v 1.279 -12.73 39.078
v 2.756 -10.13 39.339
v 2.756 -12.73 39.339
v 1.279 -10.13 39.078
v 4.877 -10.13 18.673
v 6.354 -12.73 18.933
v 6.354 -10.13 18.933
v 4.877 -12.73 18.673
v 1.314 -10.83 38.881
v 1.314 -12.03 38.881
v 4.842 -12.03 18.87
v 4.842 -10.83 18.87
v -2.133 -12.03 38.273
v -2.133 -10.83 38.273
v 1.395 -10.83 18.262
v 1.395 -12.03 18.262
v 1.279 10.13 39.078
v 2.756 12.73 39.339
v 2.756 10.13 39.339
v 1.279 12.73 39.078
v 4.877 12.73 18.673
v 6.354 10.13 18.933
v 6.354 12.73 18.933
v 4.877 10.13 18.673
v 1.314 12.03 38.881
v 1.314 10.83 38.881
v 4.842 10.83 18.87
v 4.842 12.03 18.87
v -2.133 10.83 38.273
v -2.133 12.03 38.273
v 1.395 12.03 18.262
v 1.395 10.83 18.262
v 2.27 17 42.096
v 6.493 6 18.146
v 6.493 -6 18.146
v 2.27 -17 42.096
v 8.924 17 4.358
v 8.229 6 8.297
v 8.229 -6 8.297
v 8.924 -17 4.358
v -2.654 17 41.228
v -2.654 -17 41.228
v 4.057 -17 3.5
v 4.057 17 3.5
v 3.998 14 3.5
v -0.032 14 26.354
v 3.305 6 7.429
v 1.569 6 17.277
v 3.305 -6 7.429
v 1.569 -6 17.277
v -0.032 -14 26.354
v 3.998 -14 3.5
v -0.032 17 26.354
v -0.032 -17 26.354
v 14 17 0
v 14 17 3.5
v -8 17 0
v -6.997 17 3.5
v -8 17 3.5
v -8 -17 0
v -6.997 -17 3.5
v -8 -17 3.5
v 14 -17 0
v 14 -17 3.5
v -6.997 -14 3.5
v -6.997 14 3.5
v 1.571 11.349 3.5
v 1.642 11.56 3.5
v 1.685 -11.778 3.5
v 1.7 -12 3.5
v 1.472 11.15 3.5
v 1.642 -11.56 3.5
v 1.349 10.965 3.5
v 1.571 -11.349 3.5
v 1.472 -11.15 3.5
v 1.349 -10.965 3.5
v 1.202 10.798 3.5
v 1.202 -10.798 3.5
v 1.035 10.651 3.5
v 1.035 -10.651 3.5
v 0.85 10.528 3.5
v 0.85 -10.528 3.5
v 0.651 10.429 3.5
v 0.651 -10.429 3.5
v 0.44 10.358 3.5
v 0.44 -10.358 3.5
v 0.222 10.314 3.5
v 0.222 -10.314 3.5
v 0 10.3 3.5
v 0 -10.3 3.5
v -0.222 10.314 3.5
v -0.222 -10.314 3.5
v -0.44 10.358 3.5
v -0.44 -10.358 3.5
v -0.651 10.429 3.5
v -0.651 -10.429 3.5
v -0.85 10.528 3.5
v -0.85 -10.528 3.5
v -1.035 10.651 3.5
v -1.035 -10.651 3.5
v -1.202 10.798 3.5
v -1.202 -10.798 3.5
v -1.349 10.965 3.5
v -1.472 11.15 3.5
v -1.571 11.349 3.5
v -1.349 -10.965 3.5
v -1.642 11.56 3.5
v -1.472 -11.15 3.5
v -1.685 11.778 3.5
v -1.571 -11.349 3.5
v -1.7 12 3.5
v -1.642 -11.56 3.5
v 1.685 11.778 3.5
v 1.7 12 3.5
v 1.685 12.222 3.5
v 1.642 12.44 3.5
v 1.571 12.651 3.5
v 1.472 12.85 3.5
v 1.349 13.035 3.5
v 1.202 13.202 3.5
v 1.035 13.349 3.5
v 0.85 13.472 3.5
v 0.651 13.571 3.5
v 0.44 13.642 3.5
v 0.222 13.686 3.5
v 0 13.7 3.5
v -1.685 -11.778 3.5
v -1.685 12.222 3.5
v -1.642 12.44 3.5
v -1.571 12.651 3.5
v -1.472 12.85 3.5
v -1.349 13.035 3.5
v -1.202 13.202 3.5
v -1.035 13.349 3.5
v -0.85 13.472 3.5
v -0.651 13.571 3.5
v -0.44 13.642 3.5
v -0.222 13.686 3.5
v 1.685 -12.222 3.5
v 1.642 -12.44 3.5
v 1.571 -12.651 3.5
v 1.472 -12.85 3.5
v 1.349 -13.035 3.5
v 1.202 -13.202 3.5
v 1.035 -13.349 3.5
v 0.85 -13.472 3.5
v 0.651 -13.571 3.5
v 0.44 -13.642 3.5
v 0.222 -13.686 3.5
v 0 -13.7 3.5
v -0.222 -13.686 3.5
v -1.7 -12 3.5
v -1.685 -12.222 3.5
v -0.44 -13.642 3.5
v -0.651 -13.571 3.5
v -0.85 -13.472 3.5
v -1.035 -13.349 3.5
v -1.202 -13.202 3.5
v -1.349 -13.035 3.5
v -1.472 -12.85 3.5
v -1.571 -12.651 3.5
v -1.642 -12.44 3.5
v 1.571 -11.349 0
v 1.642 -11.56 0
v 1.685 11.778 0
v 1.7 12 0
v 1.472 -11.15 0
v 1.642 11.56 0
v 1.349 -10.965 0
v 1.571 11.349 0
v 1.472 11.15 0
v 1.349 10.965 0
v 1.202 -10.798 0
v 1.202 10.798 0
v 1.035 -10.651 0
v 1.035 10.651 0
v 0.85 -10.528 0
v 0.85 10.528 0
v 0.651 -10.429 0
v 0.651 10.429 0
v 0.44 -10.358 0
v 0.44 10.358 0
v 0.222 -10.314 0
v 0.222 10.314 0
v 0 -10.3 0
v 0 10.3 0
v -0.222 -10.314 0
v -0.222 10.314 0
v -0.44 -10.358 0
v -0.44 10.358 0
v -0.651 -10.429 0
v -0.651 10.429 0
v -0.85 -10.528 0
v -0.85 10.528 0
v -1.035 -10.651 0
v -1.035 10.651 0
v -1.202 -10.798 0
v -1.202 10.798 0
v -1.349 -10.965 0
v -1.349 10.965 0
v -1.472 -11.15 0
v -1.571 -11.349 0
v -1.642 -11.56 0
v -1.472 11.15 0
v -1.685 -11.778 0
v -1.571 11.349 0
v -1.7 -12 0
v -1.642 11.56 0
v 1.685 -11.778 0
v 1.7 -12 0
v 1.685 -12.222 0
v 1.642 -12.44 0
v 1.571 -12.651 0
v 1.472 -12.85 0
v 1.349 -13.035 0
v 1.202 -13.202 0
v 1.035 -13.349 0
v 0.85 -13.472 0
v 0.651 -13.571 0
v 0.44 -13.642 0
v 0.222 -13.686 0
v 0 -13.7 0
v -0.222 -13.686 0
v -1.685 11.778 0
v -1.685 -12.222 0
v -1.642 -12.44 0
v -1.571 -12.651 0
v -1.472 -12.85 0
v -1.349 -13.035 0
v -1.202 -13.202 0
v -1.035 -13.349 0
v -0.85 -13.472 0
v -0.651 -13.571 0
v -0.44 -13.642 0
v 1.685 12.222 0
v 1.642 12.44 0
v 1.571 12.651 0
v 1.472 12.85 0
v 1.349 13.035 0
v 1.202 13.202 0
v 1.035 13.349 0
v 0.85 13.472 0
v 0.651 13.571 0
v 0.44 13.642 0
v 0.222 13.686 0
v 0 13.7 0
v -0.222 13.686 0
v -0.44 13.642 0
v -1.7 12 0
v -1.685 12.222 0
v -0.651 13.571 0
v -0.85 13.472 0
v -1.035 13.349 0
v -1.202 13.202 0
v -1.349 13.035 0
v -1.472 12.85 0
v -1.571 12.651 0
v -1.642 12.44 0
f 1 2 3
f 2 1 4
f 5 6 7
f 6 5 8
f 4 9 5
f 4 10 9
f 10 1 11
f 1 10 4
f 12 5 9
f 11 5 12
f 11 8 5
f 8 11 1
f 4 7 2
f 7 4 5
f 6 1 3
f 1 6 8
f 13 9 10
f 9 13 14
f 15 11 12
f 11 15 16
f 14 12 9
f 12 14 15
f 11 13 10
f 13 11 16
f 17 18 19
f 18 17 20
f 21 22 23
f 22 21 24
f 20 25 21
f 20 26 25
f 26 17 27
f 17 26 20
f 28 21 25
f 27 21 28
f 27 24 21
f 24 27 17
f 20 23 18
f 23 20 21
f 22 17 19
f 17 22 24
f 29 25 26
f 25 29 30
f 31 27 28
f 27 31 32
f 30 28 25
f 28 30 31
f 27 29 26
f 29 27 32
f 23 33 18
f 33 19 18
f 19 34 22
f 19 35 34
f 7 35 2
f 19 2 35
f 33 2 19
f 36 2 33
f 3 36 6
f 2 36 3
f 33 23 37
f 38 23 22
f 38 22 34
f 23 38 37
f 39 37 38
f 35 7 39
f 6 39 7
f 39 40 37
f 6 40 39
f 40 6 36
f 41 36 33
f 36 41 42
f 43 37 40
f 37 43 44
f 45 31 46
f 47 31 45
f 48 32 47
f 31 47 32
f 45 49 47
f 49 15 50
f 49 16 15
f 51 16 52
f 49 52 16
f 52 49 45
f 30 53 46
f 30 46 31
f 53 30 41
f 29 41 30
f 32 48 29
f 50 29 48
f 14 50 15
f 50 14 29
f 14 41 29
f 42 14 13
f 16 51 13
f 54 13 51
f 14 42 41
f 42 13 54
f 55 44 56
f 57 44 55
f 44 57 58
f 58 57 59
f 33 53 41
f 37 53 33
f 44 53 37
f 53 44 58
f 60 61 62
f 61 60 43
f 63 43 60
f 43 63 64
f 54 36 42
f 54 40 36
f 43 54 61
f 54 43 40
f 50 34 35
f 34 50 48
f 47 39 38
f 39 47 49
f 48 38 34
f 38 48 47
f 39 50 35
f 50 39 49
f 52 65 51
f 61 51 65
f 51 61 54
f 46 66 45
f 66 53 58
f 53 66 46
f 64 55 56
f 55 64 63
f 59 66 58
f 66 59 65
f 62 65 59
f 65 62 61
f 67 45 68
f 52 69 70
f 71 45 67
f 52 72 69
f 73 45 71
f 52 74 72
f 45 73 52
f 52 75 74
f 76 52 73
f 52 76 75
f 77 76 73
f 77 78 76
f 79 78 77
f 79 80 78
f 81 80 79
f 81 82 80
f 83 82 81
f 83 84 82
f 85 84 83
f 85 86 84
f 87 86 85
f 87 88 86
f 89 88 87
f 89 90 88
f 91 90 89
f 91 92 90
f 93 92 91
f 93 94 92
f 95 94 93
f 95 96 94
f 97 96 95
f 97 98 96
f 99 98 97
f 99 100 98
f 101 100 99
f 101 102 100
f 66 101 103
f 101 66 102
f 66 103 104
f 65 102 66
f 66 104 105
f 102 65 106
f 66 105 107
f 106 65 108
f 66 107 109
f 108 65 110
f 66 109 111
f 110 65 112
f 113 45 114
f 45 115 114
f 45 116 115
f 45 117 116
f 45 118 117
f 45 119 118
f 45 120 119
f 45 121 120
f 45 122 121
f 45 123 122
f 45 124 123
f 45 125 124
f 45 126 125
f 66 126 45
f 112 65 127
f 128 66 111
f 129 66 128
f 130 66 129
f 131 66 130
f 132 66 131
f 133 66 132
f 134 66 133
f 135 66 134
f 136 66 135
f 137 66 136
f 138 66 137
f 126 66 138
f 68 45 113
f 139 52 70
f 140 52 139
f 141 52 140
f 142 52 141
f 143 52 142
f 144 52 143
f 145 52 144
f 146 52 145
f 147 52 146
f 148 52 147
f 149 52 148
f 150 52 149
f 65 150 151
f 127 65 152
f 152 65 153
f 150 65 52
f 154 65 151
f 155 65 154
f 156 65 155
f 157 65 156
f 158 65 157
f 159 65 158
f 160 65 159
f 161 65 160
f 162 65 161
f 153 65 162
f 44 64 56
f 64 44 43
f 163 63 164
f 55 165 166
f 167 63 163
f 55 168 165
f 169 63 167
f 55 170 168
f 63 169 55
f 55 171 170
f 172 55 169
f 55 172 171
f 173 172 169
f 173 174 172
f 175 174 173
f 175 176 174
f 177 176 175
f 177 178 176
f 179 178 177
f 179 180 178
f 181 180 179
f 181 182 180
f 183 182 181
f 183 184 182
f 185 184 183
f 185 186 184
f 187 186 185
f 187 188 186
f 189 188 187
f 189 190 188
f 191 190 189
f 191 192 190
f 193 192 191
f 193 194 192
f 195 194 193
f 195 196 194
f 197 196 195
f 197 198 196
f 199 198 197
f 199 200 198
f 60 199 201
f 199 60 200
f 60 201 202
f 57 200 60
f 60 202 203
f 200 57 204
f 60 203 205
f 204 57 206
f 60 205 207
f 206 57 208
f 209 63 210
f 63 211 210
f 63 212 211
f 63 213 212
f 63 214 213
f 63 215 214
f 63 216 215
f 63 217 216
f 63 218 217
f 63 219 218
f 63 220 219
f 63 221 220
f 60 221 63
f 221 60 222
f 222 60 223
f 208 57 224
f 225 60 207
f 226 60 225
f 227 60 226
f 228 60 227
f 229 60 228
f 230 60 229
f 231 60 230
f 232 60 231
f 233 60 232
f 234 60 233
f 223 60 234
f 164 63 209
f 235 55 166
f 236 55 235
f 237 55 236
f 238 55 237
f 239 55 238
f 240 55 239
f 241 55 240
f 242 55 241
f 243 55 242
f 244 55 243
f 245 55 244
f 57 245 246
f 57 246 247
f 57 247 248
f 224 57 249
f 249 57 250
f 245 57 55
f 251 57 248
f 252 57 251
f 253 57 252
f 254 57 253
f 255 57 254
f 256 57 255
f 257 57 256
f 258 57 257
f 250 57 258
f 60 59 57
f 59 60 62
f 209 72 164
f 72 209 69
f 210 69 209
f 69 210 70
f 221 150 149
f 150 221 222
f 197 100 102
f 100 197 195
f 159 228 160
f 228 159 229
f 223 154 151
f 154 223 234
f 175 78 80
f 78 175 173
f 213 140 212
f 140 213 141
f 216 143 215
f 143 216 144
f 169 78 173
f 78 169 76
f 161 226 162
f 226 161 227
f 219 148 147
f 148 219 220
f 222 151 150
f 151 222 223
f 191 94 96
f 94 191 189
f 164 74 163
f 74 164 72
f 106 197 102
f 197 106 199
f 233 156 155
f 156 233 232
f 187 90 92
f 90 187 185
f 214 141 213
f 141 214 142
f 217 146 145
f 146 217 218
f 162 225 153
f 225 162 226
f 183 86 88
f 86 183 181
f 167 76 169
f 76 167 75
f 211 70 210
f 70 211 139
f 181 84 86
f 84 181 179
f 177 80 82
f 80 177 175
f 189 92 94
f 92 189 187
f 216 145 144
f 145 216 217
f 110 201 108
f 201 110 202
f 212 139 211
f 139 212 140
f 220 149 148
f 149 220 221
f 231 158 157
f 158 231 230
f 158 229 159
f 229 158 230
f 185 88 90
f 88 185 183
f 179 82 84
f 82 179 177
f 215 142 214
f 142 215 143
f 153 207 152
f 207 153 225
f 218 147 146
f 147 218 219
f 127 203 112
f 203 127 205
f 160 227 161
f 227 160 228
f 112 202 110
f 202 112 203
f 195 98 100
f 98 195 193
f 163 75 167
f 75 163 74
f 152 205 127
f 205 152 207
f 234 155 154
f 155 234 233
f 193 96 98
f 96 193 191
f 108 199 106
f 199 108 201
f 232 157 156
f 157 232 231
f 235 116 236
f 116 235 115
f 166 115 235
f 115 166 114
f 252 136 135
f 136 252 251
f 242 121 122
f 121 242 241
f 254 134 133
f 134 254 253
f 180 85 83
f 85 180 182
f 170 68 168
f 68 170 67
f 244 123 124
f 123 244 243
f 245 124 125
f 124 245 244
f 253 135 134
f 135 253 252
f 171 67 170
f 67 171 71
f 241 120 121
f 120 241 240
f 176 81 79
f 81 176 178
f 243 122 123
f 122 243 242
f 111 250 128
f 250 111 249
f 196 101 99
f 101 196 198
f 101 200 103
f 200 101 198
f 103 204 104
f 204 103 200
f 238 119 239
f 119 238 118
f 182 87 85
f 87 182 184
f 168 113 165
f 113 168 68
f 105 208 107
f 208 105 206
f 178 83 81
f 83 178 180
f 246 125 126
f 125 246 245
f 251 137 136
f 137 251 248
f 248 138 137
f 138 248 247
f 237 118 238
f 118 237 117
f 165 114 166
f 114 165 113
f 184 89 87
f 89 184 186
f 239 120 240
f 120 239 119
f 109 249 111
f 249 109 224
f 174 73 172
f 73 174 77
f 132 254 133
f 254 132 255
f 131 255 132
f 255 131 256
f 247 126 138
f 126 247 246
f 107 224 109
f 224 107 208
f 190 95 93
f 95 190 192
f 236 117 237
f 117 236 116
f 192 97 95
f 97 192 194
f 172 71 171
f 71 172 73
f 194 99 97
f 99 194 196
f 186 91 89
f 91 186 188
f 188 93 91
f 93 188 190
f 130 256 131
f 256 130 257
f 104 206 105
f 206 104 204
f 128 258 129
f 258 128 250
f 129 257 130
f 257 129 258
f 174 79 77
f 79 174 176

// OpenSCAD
// file: lib/telebot_common.scad
// telebot_common.scad: shared dimensions and modules for the TeleBot chassis.
//
// Coordinates (assembled robot): x forward, y left, z up, millimetres.
// z = 0 is the UNDERSIDE of the deck; the floor is at z = -ground_clear.
//
// Measure your parts before printing. TT gear motors in particular vary a
// little between sellers: check tt_t and tt_h with calipers.

$fn = 48;

// ---------------------------------------------------------------- printing
clr = 0.3;      // sliding/locating clearance per side
m3_d = 3.4;     // M3 clearance hole
m3_tap_d = 2.6; // M3 screw self-tapping into plastic
m3_nut_af = 5.7; // M3 nut across flats, plus clearance

// ---------------------------------------------------------------- deck
deck_l = 140;   // length (x)
deck_w = 100;   // width (y): the motors sit flush with the side edges
deck_t = 3;     // thickness
deck_r = 14;    // corner radius

// ---------------------------------------------------------------- TT gear motor (yellow, 1:48, in-line)
tt_t = 18.8;    // gearbox thickness along the axle (y)
tt_h = 22.4;    // gearbox height (z)
tt_len = 70;    // front of gearbox to back of motor can (x)
tt_nose = 11.3; // axle centre to the rounded front of the gearbox
tt_can_d = 20;  // motor can diameter
tt_shaft_l = 9; // output shaft length beyond each face of the gearbox
// Optional bolt slots in the inner wall for the gearbox's two M3 through-holes.
// Off by default: hole positions vary between sellers. Measure, then enable.
tt_bolt_slots = false;
tt_bolt_dx = 20.5;  // holes are this far behind the axle...
tt_bolt_dz = 17.5;  // ...and this far apart vertically, centred on the axle

// ---------------------------------------------------------------- wheels and stance
wheel_d = 65;
wheel_w = 26;
axle_x = 20;                    // axle position along the deck
axle_z = -tt_h / 2;             // gearbox top rests against the deck underside
ground_clear = wheel_d / 2 - axle_z;   // deck underside height above the floor (~43.7)
motor_y_out = deck_w / 2;       // outer face of the gearbox, flush with the deck edge
motor_y_in = motor_y_out - tt_t;

// ---------------------------------------------------------------- motor saddle (under the deck)
wall_t = 4;                     // inner wall thickness
wall_drop = tt_h + 2;           // how far the wall hangs below the deck
wall_x0 = axle_x - tt_len + tt_nose - 2;   // from just behind the motor can...
wall_x1 = axle_x + tt_nose + clr + 3;      // ...to past the front stop
zip_x = axle_x - 53;            // motor zip tie: over the can, clear of the wheel and battery ties

// ---------------------------------------------------------------- caster
// The ball drops into the holder from the top and is retained by a throat at
// the bottom; a post under the deck closes the top and is the ball's seat.
caster_x = -56;
caster_ball_d = 16;             // 16 mm glass marble or 5/8" (15.9 mm) steel ball
caster_ball_clr = 0.6;          // diametral clearance around the ball
caster_wall = 3;
caster_mount_dy = 12;           // M3 screws at y = +/- this
caster_floor_gap = 3;           // holder bottom stays this far above the floor
caster_flange_t = 3;
caster_ball_z = -ground_clear + caster_ball_d / 2;              // ball centre
caster_bottom_z = -ground_clear + caster_floor_gap;             // holder bottom
caster_seat_z = caster_ball_z + caster_ball_d / 2 + 0.2;        // post end = ball seat
caster_bore_d = caster_ball_d + caster_ball_clr;
caster_od = caster_bore_d + 2 * caster_wall;

// ---------------------------------------------------------------- ESP32-CAM bracket
cam_x = 44;                     // bracket mounting screws on the deck centre line
cam_mount_dy = 12;
cam_tilt = 10;                  // camera looks up by this many degrees
cam_mast_h = 12;                // extra height under the board (raise for a taller view)
esp_header_pitch = 22.86;       // ESP32-CAM header rows are 0.9" apart
esp_header_len = 20.32;         // 8 pins x 2.54 mm
hdr_body_w = 2.6;               // female header body cross-section (+ clearance)
hdr_pocket_d = 1.5;             // locating pocket depth for the header bodies
hdr_tail_w = 1.2;               // slot for the long tails of stacking headers
tower_t = 5;                    // tower plate thickness
tower_w = 34;

// ---------------------------------------------------------------- battery and electronics
batt_x = -15;                   // 18650 holder centre (behind the axle keeps the weight on the wheels)
batt_holder = [21, 78, 20];     // single 18650 holder footprint (x, y) and height
elec_x0 = -64;                  // perforated area for the driver and power modules
elec_x1 = -34;
wire_hole_x = axle_x - tt_len + tt_nose - 6;  // motor leads come up behind the cans
wire_hole_y = 38;
wire_hole_d = 8;
switch_cut = [13.2, 8.9];       // KCD11-style mini rocker switch (panel cutout)
switch_pos = [-62, -34];

// ================================================================= helpers
module rounded_rect(size, r) {
    // 2D rounded rectangle centred on the origin
    offset(r = r) square([size[0] - 2 * r, size[1] - 2 * r], center = true);
}

module slot(len, w, h) {
    // 3D stadium slot along x, centred, height h (z)
    hull() {
        for (s = [-1, 1]) translate([s * (len - w) / 2, 0, 0]) cylinder(d = w, h = h, center = true);
    }
}

module zip_slot(h = 20) {
    // slot for a 2.5 mm zip tie (long side along x)
    cube([4.2, 2.2, h], center = true);
}

// ================================================================= reference models (assembly preview only)
module tt_motor_model() {
    // axle at the origin, body extending toward -x, outer face at y = 0, inner face at y = -tt_t
    gear_len = tt_len - 27;     // gearbox length; the remaining 27 mm is the motor can
    color("gold") {
        translate([tt_nose - gear_len, -tt_t, -tt_h / 2]) cube([gear_len - tt_nose, tt_t, tt_h]);
        translate([0, -tt_t, 0]) rotate([-90, 0, 0]) cylinder(d = tt_h, h = tt_t);   // rounded nose
    }
    color("silver") translate([-tt_len + tt_nose, -tt_t / 2, 0]) rotate([0, 90, 0]) cylinder(d = tt_can_d, h = 27);
    color("white") translate([0, -tt_t - tt_shaft_l, 0]) rotate([-90, 0, 0]) cylinder(d = 5.4, h = tt_t + 2 * tt_shaft_l);
}

module wheel_model() {
    // centred on the axle, inner face at y = 0, extending to +y
    color("dimgray") rotate([-90, 0, 0]) difference() {
        cylinder(d = wheel_d, h = wheel_w);
        translate([0, 0, -1]) cylinder(d = wheel_d - 16, h = 4);
    }
}

module esp32cam_model() {
    // board standing on its 5V end, camera side toward +x, origin at the bottom centre of the back face
    color("darkgreen") translate([0, -13.5, 0]) cube([1.6, 27, 40.5]);
    color("black") translate([1.6, -4, 26]) cube([4.5, 8, 8]);              // camera module
    color("silver") translate([1.6, -9, 7]) cube([3.2, 18, 25]);            // ESP32-S shield
    color("black") for (s = [-1, 1]) translate([-2.5, s * esp_header_pitch / 2 - 1.25, 1.3]) cube([2.5, 2.5, esp_header_len]);
}

module battery_model() {
    color("royalblue") translate([-batt_holder[0] / 2, -batt_holder[1] / 2, 0]) cube(batt_holder);
    color("steelblue") translate([0, -65 / 2, batt_holder[2] / 2 + 1]) rotate([-90, 0, 0]) cylinder(d = 18.4, h = 65);
}
// main file
// esp32cam_bracket.scad: tilted mast that holds the ESP32-CAM upright,
// camera facing forward.
//
// The board plugs into two 8-pin "stacking" female headers (the kind with
// long ~11 mm tails, sold for Arduino shields). Their bodies sit in shallow
// pockets on the front of the mast; the tails pass through slots and stick
// out of the back, where the Dupont jumpers to the motor driver and power
// connect. The ESP32-CAM can be pulled out for USB flashing on an
// ESP32-CAM-MB. Glue the headers in with a drop of CA or hot glue.
//
// Mount: two M3 x 10 screws down through the foot and the deck, nuts below.
// Prints as exported, foot on the bed, no supports.

include <lib/telebot_common.scad>

print_orientation = true;

foot = [22, tower_w, 3.5];          // x, y, z
tower_x = 4;                        // tower starts this far in front of the screws
tower_h = cam_mast_h + esp_header_len + 6;
header_v0 = cam_mast_h + 3;         // bottom of the header pockets, up the mast

module tower_plate() {
    // local frame: front face at x = tower_t (normal +x), bottom at z = 0
    difference() {
        translate([0, -tower_w / 2, 0]) cube([tower_t, tower_w, tower_h]);
        for (s = [-1, 1]) {
            y = s * esp_header_pitch / 2;
            // locating pocket for the header body
            translate([tower_t - hdr_pocket_d, y - hdr_body_w / 2, header_v0 - 0.2])
                cube([hdr_pocket_d + 1, hdr_body_w, esp_header_len + 0.4]);
            // slot for the tails
            translate([-1, y - hdr_tail_w / 2, header_v0])
                cube([tower_t + 2, hdr_tail_w, esp_header_len]);
        }
        // lighten / pass wires between the header rows
        translate([-1, -6, 4]) cube([tower_t + 2, 12, cam_mast_h - 2]);
    }
}

module esp32cam_bracket() {
    difference() {
        union() {
            translate([-8, -foot[1] / 2, 0]) cube(foot);
            translate([tower_x, 0, foot[2] - 0.01]) rotate([0, -cam_tilt, 0]) tower_plate();
            // side gussets behind the tower, clear of the header tails
            for (s = [-1, 1]) translate([tower_x, s * (tower_w / 2 - 1.5) - 1.5, foot[2] - 0.01])
                rotate([90, 0, 0]) translate([0, 0, -3]) linear_extrude(3)
                    polygon([[0, 0], [-11, 0], [-tower_h * sin(cam_tilt) * 0.6, tower_h * 0.6]]);
        }
        for (s = [-1, 1]) translate([0, s * cam_mount_dy, -1]) cylinder(d = m3_d, h = foot[2] + 2);
    }
}

if (print_orientation) {
    esp32cam_bracket();
} else {
    translate([cam_x, 0, deck_t]) esp32cam_bracket();
}
